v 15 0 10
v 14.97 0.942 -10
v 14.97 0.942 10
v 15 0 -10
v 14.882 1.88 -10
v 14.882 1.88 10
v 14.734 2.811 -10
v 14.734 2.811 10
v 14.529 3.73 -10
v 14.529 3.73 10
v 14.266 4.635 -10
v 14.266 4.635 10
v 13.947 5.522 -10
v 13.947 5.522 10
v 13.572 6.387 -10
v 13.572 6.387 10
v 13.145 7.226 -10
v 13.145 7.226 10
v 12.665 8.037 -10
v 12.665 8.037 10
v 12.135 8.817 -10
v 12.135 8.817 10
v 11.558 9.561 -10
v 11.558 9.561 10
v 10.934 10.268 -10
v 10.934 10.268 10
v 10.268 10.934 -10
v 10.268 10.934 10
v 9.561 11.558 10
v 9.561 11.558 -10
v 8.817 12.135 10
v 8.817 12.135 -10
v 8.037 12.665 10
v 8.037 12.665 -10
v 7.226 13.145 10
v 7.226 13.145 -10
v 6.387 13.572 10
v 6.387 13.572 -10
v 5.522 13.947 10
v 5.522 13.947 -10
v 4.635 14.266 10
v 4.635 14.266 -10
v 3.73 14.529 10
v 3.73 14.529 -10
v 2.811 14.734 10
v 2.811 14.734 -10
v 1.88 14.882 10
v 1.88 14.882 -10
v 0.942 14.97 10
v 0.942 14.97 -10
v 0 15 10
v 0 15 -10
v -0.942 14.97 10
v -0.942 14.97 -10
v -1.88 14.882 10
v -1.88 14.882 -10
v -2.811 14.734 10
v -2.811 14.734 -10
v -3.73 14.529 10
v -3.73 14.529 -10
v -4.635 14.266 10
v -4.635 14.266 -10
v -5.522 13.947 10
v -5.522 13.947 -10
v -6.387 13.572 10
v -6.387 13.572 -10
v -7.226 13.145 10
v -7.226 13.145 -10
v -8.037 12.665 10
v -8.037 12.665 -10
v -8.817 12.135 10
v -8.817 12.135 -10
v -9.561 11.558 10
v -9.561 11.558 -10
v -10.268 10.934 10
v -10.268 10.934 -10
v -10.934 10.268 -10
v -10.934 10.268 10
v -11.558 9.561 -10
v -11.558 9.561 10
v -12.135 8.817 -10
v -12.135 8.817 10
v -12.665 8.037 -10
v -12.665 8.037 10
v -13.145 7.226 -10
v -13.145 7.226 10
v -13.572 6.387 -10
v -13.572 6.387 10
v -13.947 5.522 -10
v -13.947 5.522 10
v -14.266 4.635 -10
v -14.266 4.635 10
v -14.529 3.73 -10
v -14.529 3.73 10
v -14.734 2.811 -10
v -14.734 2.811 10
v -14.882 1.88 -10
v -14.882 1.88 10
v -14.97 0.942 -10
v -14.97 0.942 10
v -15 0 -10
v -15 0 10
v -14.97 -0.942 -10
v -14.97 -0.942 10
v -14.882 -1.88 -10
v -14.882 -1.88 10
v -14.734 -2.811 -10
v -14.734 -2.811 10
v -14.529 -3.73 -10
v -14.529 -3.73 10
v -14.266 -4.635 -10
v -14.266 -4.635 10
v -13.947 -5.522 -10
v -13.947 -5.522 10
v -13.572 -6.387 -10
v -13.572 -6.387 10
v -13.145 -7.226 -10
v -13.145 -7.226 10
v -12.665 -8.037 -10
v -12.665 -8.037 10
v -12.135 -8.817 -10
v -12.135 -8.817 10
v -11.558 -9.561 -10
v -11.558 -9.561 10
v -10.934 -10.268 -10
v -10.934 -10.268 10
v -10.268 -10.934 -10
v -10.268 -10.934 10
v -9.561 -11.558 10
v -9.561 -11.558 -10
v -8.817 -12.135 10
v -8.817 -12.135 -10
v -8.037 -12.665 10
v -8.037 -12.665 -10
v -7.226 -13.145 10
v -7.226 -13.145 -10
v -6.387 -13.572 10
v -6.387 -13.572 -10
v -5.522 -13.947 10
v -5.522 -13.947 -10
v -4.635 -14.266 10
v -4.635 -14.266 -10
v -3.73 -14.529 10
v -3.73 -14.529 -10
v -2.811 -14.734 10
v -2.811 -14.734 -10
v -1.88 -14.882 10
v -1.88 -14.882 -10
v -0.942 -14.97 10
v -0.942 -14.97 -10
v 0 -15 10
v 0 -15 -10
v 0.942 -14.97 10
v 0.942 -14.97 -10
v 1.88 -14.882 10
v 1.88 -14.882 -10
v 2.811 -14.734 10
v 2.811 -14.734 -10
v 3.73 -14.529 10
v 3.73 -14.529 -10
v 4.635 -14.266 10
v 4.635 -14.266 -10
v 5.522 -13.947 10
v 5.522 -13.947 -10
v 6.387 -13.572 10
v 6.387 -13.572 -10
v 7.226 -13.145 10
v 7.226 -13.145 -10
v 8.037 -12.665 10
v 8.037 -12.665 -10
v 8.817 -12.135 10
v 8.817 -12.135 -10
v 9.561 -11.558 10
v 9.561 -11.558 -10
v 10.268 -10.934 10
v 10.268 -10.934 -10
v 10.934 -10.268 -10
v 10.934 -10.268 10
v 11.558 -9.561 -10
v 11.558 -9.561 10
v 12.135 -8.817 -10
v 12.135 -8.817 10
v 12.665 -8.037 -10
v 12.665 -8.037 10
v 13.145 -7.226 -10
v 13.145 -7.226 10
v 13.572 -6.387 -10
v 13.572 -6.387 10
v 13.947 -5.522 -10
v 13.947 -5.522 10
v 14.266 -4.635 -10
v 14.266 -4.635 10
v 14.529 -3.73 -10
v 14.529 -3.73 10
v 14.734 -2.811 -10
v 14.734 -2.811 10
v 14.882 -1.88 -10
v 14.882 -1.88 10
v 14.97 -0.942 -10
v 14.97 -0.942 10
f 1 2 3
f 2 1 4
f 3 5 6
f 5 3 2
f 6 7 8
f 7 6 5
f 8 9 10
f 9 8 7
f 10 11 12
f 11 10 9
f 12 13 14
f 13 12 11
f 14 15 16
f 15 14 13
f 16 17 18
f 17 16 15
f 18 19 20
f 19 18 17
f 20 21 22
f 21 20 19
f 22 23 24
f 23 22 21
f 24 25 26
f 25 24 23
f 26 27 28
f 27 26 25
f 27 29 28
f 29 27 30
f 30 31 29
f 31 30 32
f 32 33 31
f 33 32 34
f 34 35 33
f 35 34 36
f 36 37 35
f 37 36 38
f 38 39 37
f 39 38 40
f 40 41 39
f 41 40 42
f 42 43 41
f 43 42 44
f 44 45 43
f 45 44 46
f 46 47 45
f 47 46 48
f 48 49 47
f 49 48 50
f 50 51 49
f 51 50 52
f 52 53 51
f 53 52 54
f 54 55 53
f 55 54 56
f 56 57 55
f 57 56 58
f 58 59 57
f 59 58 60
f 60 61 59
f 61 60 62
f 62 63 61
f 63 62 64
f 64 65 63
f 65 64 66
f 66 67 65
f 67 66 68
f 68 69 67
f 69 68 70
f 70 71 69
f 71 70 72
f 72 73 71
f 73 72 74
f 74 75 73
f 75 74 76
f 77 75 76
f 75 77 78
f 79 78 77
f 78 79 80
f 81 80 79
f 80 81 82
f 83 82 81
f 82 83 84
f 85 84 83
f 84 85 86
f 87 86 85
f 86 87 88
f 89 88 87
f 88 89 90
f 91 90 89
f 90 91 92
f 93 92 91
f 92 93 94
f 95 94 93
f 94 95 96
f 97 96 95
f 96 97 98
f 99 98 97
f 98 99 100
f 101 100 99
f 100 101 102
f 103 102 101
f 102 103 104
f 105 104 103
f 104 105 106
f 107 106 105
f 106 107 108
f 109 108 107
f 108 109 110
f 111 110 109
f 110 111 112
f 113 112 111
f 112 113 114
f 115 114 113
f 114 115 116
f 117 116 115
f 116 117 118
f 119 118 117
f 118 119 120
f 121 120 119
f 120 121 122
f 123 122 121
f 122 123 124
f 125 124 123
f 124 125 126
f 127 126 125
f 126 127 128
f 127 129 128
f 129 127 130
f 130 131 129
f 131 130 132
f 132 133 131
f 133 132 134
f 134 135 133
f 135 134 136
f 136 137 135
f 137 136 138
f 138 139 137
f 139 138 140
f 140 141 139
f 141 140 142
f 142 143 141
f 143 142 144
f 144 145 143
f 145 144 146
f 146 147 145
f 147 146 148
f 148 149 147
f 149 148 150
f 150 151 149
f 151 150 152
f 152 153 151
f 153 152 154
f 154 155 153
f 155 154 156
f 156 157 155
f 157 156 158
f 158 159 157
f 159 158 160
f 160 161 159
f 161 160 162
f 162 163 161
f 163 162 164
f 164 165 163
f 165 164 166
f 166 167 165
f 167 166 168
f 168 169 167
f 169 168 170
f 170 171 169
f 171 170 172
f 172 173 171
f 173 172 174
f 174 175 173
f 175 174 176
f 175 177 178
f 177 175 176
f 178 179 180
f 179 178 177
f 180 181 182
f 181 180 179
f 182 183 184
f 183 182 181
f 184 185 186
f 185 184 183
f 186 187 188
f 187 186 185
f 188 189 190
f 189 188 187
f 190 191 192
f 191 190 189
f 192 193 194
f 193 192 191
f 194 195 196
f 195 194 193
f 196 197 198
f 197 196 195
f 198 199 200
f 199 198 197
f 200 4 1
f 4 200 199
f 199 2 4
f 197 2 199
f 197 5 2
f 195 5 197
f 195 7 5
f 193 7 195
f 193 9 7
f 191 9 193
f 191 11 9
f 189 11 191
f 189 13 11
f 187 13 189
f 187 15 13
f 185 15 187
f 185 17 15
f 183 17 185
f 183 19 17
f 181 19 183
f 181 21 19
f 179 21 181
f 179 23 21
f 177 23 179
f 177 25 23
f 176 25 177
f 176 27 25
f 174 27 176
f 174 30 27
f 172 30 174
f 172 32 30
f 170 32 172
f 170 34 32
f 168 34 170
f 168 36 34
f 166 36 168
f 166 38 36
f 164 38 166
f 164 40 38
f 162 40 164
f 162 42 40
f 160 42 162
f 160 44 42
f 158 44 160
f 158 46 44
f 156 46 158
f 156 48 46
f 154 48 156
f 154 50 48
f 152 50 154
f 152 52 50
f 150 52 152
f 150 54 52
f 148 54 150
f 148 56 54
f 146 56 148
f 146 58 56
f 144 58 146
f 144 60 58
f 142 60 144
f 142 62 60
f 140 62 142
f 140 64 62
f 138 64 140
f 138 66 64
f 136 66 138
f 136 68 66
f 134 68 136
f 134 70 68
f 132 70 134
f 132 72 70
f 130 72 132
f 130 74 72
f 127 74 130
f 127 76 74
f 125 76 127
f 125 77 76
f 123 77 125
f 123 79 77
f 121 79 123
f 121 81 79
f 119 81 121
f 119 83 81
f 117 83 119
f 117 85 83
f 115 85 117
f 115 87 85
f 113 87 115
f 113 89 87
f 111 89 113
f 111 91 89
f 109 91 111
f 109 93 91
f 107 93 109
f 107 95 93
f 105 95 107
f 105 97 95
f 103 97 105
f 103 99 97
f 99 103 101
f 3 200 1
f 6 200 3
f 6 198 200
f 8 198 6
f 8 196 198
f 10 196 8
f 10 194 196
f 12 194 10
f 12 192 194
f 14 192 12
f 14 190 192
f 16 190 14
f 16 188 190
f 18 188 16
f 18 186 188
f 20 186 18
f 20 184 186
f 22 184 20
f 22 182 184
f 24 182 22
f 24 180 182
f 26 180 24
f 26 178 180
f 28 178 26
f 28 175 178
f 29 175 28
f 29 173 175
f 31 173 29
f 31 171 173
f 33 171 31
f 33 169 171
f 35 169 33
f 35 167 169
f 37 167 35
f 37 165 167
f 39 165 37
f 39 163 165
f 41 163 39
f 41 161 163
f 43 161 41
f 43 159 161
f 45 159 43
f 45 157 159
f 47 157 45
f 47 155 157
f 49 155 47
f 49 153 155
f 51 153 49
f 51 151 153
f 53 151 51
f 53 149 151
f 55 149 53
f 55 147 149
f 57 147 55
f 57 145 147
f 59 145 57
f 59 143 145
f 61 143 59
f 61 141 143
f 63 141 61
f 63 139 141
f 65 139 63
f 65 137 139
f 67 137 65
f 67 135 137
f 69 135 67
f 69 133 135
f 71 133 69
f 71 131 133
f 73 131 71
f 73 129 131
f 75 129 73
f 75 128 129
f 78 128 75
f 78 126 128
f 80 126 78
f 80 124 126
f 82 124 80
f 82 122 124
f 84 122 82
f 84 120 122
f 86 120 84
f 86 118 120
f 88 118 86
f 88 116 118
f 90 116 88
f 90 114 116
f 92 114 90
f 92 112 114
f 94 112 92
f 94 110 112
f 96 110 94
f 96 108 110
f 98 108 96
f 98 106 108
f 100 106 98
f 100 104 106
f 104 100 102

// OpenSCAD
$fn = 100;

translate([0, 0, 0])
rotate([0, 0, 0])
cylinder(20, 15, 15, true);
